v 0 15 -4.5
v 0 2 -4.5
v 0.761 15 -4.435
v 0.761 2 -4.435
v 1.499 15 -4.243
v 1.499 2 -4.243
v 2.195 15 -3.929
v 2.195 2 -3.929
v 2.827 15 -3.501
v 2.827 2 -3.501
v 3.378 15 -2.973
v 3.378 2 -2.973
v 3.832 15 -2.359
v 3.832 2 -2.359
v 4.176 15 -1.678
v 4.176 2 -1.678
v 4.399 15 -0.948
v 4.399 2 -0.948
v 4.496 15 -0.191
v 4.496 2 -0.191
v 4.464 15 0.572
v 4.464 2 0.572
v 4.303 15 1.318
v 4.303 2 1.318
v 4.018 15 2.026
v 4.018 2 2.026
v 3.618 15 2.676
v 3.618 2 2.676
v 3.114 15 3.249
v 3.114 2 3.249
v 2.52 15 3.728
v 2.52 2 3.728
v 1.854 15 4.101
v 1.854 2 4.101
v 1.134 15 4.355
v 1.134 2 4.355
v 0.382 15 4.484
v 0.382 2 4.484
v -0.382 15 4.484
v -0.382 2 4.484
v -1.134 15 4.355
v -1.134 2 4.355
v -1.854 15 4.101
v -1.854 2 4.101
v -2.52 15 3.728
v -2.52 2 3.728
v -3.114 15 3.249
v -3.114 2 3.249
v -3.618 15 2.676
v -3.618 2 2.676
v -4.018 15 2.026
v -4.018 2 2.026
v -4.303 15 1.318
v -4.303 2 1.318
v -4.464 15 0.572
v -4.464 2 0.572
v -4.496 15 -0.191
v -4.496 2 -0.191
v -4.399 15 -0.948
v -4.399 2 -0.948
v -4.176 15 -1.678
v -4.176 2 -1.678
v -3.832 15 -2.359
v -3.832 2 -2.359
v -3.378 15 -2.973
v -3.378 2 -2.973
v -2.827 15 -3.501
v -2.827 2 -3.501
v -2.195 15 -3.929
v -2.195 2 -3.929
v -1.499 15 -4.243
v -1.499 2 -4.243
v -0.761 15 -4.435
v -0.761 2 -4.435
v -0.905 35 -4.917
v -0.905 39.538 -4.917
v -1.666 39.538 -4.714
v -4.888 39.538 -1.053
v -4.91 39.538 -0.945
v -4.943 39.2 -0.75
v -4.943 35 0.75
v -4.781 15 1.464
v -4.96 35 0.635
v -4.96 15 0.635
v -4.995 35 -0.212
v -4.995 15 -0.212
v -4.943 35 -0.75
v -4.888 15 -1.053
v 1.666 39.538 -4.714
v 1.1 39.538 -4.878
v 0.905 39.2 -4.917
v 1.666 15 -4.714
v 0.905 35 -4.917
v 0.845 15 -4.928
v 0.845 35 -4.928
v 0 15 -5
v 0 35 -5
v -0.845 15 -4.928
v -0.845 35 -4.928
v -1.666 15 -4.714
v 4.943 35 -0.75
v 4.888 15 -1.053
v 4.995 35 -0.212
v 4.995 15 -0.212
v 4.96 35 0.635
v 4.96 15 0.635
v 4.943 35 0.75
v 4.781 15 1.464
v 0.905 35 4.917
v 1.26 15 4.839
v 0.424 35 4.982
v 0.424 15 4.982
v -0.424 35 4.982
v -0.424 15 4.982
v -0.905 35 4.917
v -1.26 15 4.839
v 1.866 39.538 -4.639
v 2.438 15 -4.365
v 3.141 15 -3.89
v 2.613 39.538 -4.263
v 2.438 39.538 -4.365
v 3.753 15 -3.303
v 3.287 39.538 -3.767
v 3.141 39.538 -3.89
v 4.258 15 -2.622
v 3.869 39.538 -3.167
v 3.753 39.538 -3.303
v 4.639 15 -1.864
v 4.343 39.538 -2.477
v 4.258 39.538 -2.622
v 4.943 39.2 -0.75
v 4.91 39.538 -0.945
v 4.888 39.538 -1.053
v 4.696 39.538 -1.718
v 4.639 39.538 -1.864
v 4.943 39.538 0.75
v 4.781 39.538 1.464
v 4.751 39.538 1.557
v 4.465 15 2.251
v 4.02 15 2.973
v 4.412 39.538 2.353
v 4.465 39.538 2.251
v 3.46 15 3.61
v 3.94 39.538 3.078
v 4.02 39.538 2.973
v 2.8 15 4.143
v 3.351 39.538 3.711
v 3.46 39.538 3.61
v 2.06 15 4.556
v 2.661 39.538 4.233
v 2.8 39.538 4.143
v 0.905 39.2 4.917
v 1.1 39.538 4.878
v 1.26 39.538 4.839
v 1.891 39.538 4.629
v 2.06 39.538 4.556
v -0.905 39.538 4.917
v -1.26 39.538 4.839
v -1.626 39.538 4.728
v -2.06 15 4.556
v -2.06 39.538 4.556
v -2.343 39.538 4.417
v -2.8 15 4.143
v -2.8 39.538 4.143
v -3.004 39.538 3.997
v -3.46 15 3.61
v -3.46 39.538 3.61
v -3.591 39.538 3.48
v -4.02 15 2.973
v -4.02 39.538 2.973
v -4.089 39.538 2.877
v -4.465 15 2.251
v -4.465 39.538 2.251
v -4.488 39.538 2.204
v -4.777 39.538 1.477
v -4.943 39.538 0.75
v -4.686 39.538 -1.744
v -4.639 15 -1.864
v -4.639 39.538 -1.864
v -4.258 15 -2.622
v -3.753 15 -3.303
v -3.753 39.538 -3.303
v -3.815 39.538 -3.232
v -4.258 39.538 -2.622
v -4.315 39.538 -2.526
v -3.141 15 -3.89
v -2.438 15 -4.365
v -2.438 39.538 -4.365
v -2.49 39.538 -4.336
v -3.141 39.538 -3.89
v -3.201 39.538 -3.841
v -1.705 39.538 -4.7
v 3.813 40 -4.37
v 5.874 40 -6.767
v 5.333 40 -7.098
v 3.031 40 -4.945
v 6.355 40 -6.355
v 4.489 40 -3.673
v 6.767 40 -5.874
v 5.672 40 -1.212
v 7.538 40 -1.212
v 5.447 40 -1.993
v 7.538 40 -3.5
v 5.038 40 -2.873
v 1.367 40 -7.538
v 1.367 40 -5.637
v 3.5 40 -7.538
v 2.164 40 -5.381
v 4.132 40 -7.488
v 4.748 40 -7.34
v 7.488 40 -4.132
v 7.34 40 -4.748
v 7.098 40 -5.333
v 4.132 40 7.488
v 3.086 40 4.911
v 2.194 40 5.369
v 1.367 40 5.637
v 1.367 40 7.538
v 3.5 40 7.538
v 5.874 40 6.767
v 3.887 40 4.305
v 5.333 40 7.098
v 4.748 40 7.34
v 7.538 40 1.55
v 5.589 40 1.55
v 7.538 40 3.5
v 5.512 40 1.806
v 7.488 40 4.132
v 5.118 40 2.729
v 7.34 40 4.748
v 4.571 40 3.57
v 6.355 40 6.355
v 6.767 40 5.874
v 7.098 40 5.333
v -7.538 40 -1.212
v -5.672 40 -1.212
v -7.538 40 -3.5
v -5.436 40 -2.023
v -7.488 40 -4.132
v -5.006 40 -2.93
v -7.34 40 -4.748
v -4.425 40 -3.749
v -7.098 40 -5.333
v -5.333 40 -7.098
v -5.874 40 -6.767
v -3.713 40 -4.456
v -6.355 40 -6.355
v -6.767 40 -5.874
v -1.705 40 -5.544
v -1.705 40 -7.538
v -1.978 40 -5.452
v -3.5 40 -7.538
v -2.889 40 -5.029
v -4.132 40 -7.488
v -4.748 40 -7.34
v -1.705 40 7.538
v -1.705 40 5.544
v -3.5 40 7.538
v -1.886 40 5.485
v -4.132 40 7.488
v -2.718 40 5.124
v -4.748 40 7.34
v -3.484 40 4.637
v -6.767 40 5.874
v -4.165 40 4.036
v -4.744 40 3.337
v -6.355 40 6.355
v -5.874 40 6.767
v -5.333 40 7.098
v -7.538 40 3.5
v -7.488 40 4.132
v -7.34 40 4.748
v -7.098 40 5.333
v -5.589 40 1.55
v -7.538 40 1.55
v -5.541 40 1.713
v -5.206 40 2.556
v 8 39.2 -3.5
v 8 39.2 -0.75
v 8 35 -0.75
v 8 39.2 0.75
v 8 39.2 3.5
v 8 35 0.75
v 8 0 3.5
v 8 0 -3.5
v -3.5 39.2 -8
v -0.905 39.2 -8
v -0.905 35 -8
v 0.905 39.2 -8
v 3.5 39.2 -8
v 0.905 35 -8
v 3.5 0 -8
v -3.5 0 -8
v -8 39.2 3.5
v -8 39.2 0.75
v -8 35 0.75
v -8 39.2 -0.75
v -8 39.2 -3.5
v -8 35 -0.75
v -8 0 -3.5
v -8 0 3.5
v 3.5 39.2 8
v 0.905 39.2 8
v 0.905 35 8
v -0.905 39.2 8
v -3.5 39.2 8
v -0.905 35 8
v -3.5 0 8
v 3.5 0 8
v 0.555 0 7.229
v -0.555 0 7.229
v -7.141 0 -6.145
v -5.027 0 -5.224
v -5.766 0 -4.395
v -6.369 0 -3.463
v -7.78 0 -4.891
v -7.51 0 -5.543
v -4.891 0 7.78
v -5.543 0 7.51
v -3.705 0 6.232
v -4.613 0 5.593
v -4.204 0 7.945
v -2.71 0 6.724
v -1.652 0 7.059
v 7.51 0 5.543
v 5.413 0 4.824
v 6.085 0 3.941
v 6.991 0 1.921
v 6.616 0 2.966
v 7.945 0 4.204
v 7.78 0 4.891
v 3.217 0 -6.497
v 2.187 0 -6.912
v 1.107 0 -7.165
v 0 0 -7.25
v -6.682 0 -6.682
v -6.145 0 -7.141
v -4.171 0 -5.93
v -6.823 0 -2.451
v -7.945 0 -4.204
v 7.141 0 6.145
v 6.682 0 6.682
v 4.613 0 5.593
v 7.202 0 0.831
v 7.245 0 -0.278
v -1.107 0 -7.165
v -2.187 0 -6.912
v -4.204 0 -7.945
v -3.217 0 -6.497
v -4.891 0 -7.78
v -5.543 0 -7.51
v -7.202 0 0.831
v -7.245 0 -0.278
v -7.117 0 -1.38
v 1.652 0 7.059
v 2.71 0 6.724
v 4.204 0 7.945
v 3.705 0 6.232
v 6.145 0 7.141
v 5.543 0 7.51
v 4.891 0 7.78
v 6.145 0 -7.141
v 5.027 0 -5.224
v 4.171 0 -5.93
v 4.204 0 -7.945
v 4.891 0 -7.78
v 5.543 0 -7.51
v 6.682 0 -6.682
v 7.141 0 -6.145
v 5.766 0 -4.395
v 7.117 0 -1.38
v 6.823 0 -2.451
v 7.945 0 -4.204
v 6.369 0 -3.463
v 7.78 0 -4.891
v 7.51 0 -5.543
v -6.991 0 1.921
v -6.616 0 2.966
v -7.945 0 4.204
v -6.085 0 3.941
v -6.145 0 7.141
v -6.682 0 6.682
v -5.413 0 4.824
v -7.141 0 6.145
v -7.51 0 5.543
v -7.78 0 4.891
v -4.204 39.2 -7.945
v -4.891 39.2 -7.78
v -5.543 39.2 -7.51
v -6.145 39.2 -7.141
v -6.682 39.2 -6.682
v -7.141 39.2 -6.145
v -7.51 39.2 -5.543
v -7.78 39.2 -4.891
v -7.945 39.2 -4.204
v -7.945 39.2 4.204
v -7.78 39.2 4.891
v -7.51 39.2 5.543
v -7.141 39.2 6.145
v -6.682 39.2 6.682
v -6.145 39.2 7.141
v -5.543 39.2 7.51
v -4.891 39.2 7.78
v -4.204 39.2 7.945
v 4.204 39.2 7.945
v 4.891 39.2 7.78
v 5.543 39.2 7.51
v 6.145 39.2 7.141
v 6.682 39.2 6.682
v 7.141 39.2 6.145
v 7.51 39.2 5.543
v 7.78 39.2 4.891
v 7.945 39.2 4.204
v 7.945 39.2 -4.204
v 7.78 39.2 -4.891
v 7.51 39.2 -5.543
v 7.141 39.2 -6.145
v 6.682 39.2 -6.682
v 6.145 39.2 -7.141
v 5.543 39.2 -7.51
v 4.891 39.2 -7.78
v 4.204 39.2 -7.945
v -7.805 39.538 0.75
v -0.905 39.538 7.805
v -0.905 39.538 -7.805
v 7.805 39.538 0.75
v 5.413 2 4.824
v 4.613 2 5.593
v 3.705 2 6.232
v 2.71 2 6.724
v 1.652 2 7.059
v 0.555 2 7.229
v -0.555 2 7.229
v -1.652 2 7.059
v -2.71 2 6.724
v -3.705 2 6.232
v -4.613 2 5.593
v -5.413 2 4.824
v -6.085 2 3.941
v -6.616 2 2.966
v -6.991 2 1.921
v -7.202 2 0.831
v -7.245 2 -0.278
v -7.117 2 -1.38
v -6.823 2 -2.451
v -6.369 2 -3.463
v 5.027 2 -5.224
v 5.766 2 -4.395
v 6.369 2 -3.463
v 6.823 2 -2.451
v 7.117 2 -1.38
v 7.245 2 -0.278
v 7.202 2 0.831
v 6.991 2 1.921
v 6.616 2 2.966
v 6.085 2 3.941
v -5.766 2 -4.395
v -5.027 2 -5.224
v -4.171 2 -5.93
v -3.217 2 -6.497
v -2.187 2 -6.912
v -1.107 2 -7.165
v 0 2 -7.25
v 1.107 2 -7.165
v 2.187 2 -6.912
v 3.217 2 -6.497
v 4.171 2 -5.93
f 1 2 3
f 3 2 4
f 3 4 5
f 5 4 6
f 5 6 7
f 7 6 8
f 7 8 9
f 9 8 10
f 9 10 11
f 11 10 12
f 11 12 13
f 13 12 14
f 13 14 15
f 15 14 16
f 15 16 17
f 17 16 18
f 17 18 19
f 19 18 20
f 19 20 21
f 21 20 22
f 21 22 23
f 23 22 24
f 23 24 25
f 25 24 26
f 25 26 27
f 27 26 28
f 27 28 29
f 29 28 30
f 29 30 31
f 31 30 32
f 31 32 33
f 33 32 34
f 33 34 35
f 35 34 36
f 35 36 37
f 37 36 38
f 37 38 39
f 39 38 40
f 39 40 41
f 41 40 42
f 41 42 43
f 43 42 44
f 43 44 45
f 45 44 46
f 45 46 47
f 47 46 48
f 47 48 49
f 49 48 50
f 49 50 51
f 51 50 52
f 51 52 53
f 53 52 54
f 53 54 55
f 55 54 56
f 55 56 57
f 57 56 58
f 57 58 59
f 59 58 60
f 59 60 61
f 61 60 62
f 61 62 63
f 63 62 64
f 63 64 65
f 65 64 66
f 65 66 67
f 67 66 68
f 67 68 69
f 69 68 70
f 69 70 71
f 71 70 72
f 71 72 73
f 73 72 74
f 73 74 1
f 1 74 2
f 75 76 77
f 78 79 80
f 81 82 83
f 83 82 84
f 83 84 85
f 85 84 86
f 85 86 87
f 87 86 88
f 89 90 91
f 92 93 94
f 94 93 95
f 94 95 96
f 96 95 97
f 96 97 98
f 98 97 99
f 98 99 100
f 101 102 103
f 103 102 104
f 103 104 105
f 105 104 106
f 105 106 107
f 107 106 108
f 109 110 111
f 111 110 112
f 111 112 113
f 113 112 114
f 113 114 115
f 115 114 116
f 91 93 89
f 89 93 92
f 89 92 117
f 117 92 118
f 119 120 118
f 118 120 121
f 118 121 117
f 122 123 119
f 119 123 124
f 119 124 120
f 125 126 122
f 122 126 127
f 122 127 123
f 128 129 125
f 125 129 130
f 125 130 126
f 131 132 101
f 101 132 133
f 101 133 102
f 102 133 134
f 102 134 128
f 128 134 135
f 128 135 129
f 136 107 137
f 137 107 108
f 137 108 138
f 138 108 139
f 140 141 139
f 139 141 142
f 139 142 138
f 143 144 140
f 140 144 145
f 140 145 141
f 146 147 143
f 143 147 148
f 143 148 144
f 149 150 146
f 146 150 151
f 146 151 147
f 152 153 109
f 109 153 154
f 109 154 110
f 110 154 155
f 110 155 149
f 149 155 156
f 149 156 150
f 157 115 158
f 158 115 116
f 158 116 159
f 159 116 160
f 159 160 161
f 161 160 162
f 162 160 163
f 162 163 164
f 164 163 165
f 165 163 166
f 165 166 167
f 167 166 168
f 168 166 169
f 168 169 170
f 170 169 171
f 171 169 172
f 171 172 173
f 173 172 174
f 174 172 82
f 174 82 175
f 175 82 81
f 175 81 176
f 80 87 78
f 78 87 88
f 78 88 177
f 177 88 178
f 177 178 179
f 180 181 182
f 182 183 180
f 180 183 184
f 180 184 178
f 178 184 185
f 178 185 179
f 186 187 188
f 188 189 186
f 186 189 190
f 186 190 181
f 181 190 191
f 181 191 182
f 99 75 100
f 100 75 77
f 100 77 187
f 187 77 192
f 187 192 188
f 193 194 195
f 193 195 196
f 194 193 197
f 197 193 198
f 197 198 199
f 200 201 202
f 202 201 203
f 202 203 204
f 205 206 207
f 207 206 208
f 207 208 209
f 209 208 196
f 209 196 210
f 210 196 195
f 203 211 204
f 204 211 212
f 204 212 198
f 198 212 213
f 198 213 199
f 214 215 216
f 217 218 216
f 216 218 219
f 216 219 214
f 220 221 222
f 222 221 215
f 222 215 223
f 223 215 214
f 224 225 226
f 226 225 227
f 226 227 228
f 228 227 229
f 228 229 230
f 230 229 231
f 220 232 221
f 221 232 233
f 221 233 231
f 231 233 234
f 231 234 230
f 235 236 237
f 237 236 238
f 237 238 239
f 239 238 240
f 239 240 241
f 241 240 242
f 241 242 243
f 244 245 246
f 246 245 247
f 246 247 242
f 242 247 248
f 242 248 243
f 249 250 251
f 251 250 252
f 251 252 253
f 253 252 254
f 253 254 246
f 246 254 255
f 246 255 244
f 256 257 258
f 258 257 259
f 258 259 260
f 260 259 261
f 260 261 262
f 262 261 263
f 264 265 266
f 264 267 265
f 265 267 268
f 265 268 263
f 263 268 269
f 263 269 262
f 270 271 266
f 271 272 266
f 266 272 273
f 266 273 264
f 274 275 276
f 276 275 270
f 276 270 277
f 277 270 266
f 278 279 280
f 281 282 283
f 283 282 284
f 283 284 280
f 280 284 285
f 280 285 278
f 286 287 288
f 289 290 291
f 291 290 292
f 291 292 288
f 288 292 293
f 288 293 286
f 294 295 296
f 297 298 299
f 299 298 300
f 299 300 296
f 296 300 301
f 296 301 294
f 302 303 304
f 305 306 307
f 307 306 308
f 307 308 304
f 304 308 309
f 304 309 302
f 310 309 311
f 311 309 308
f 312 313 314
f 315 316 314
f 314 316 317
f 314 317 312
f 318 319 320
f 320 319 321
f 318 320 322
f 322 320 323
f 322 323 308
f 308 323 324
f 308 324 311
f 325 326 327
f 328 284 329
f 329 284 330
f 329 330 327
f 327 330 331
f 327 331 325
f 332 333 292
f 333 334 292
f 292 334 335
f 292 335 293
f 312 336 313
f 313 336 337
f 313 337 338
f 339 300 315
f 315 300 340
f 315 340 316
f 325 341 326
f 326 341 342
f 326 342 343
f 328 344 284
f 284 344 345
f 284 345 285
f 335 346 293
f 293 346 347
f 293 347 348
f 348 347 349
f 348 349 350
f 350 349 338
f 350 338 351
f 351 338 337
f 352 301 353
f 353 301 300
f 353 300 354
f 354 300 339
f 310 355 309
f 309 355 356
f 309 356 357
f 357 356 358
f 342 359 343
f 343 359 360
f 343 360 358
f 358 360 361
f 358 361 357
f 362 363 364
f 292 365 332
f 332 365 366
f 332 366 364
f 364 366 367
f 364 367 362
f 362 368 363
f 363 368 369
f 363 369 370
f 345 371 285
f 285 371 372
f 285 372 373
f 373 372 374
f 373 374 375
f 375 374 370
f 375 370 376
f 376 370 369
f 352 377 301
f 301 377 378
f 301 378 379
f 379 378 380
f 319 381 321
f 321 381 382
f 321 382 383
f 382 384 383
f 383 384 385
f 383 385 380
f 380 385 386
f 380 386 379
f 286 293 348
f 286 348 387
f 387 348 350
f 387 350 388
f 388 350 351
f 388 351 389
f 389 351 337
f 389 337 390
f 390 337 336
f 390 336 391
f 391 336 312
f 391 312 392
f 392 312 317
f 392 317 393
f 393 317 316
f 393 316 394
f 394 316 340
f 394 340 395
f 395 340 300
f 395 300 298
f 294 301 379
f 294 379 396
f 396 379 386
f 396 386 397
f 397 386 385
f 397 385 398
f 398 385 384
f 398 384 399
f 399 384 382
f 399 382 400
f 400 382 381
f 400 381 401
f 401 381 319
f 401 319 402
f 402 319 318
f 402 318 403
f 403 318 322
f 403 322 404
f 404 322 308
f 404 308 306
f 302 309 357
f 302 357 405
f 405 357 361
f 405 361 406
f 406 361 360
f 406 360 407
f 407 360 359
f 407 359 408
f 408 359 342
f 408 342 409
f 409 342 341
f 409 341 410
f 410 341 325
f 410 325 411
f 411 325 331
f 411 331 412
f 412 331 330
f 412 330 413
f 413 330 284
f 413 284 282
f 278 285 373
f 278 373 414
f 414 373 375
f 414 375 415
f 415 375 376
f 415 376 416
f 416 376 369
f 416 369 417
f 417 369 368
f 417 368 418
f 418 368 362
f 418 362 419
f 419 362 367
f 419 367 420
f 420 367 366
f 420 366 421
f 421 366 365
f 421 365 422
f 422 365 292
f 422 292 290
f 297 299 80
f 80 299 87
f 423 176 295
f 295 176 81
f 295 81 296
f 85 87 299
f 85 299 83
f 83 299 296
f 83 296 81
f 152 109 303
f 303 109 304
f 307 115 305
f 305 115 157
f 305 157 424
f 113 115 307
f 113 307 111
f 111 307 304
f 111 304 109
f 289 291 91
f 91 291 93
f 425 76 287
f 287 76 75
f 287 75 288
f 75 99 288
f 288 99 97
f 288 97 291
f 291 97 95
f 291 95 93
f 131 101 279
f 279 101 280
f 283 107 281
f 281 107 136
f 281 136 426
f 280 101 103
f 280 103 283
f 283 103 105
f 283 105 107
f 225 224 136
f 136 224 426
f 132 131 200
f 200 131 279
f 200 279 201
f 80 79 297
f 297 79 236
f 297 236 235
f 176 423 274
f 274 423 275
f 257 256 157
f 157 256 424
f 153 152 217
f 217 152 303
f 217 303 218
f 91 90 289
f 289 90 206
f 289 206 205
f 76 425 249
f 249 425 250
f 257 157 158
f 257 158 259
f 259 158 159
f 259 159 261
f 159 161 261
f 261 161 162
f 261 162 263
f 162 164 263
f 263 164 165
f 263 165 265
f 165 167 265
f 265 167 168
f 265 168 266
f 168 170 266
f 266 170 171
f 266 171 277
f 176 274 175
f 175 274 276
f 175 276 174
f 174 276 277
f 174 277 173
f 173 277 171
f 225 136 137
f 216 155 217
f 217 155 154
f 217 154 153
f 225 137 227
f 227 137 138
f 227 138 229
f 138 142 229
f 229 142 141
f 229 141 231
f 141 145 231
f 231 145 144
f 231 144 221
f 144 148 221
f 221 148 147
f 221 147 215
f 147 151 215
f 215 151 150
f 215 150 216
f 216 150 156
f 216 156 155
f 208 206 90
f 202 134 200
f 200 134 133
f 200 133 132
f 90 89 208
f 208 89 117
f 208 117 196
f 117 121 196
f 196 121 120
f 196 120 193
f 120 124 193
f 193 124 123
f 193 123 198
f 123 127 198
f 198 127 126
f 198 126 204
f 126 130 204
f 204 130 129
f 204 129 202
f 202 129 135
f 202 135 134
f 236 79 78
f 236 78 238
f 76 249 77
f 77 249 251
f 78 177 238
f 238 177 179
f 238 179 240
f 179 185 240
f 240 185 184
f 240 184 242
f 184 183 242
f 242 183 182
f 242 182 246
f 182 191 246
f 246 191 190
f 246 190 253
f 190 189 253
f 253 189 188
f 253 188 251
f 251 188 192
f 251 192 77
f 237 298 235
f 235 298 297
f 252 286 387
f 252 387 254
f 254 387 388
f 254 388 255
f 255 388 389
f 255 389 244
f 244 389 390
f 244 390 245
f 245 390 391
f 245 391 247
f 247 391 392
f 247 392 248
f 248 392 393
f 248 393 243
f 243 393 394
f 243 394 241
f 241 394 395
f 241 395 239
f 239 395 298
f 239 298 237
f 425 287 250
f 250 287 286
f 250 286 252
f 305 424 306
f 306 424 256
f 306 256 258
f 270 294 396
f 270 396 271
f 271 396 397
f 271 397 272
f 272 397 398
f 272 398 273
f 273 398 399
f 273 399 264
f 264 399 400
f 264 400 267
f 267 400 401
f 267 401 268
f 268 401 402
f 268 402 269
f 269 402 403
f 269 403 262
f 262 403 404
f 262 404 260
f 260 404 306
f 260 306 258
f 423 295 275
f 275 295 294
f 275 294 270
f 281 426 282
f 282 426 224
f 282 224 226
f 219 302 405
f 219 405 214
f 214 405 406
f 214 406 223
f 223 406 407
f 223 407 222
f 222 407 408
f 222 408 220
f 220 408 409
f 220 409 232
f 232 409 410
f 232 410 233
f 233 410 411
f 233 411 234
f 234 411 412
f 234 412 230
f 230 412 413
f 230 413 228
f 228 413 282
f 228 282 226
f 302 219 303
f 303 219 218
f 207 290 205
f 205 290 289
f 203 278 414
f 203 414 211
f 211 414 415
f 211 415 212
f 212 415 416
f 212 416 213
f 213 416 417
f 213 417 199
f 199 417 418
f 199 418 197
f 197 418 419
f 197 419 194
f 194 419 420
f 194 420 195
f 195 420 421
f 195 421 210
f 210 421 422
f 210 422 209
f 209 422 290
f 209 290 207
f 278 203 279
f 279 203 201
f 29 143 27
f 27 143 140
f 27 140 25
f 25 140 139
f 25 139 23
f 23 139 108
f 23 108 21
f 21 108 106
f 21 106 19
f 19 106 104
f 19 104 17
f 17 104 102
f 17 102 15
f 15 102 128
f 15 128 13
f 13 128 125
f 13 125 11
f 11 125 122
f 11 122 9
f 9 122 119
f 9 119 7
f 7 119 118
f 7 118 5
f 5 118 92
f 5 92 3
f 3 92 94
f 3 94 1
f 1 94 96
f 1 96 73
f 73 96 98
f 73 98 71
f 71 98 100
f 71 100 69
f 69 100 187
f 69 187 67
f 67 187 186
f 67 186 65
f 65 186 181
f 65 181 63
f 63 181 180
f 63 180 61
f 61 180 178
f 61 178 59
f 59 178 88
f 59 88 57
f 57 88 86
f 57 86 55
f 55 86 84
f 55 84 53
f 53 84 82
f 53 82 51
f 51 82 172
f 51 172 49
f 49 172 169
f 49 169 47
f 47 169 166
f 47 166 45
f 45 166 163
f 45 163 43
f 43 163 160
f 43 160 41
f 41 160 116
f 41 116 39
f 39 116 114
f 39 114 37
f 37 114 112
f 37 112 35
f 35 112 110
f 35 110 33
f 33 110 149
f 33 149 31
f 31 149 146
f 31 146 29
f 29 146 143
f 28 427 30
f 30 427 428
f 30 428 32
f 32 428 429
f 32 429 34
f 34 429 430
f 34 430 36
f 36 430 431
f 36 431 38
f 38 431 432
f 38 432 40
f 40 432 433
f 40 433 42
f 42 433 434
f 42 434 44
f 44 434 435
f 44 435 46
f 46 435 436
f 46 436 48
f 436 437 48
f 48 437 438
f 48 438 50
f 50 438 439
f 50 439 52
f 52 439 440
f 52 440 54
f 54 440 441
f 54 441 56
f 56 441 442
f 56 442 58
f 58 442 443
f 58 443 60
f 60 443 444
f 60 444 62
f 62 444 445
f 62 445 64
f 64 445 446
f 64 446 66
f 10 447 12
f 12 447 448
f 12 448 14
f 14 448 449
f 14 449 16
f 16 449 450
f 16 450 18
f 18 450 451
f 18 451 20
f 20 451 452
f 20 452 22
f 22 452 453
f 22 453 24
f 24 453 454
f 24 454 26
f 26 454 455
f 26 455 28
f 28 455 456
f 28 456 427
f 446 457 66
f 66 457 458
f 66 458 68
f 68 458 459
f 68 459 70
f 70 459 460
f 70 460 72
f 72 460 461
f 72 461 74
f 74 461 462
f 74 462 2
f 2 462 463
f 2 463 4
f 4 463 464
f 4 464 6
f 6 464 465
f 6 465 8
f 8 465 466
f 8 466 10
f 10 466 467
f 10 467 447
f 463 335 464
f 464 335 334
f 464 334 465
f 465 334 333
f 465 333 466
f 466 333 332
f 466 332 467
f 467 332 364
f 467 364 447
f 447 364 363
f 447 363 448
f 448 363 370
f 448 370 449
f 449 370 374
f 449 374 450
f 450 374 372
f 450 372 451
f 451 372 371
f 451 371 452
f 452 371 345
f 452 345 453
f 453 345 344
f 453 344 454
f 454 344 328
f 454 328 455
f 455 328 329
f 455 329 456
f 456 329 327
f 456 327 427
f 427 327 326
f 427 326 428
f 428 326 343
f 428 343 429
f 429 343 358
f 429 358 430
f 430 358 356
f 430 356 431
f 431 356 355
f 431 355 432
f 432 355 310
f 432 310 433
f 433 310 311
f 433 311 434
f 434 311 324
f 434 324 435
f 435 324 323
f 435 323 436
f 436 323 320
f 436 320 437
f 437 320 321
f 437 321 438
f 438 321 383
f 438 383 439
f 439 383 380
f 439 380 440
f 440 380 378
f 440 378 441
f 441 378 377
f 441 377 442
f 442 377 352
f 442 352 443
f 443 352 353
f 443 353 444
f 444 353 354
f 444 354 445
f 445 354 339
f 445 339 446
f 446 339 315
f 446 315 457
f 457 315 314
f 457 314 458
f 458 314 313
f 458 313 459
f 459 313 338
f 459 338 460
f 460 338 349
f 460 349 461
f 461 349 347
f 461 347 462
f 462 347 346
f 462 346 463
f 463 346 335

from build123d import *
from OCP.BRepFilletAPI import BRepFilletAPI_MakeChamfer

# Parameters (mm, degrees)
SKETCH1_W           = 16
SKETCH1_H           = 16
SKETCH1_R           = 5
BOSS_EXTRUDE1_DEPTH = 40
FILLET1_R           = 4.5
CUT_EXTRUDE1_START  = -5
CUT_EXTRUDE1_DEPTH  = 5
CHAMFER1_SIZE       = 0.8
CHAMFER1_SIZE2      = 0.461880215
CHAMFER2_SIZE       = 0.8
CHAMFER2_SIZE2      = 0.461880215
SKETCH3_R           = 5
SKETCH3_R_2         = 4.5
BOSS_EXTRUDE2_DEPTH = 15
SKETCH4_R           = 7.25
CUT_EXTRUDE2_DEPTH  = 2


with BuildPart() as part:
    # Sketch1 → Boss-Extrude1 (new body)
    with BuildSketch(Plane(origin=(0, 0, 0), x_dir=(1, 0, 0), z_dir=(0, 1, 0))):
        Rectangle(SKETCH1_W, SKETCH1_H)
        with Locations(Location((0, 0, 0), (0, 0, 270))):
            Circle(SKETCH1_R, mode=Mode.SUBTRACT)
    extrude(amount=BOSS_EXTRUDE1_DEPTH)

    # Fillet1
    fillet1_edges = [part.edges().sort_by_distance(p)[0] for p in [
        (8, 20, 8),
        (-8, 20, 8),
        (-8, 20, -8),
        (8, 20, -8),
    ]]
    fillet(fillet1_edges, radius=FILLET1_R)

    # Sketch2 → Cut-Extrude1 (cut)
    with BuildSketch(Plane(origin=(0, 40, 0), x_dir=(1, 0, 0), z_dir=(0, 1, 0)).offset(CUT_EXTRUDE1_START)):
        with BuildLine():
            ThreePointArc((5, 0), (4.985837438, -0.376065209), (4.943429983, -0.75))
            Line((4.943429983, -0.75), (8, -0.75))
            Line((8, -0.75), (8, 0.75))
            Line((8, 0.75), (4.943429983, 0.75))
            ThreePointArc((4.943429983, 0.75), (4.985837438, 0.376065209), (5, 0))
        make_face()
        with BuildLine():
            Line((-0.904749438, 8), (-0.904749438, 4.917461586))
            ThreePointArc((-0.904749438, 4.917461586), (0, 5), (0.904749438, 4.917461586))
            Line((0.904749438, 4.917461586), (0.904749438, 8))
            Line((0.904749438, 8), (-0.904749438, 8))
        make_face()
        with BuildLine():
            ThreePointArc((0.904749438, -4.917461586), (0, -5), (-0.904749438, -4.917461586))
            Line((-0.904749438, -4.917461586), (-0.904749438, -8))
            Line((-0.904749438, -8), (0.904749438, -8))
            Line((0.904749438, -8), (0.904749438, -4.917461586))
        make_face()
        with BuildLine():
            Line((-8, 0.75), (-8, -0.75))
            Line((-8, -0.75), (-4.943429983, -0.75))
            ThreePointArc((-4.943429983, -0.75), (-5, 0), (-4.943429983, 0.75))
            Line((-4.943429983, 0.75), (-8, 0.75))
        make_face()
    extrude(amount=CUT_EXTRUDE1_DEPTH, mode=Mode.SUBTRACT)

    # Chamfer1: one chamfer whose edges measure the first distance from different faces: ONE call of the kernel's chamfer builder (chamfer() names one face for all edges)
    chamfer1_edges_1 = [part.edges().sort_by_distance(p)[0] for p in [
        (6.471714992, 40, -0.75),
    ]]
    chamfer1_side_1 = [part.faces().sort_by_distance(p)[0] for p in [
        (6.471714992, 37.5, -0.75),
    ]]
    chamfer1_edges_2 = [part.edges().sort_by_distance(p)[0] for p in [
        (6.471714992, 40, 0.75),
    ]]
    chamfer1_side_2 = [part.faces().sort_by_distance(p)[0] for p in [
        (4.797663916, 40, 4.721192893),
    ]]
    chamfer1_edges_3 = [part.edges().sort_by_distance(p)[0] for p in [
        (0.904749438, 40, -6.458730793),
    ]]
    chamfer1_side_3 = [part.faces().sort_by_distance(p)[0] for p in [
        (0.904749438, 37.5, -6.458730793),
    ]]
    chamfer1_edges_4 = [part.edges().sort_by_distance(p)[0] for p in [
        (-0.904749438, 40, -6.458730793),
    ]]
    chamfer1_side_4 = [part.faces().sort_by_distance(p)[0] for p in [
        (-4.797663916, 40, -4.721192893),
    ]]
    chamfer1_edges_5 = [part.edges().sort_by_distance(p)[0] for p in [
        (0.904749438, 40, 6.458730793),
    ]]
    chamfer1_side_5 = [part.faces().sort_by_distance(p)[0] for p in [
        (0.904749438, 37.5, 6.458730793),
    ]]
    chamfer1_edges_6 = [part.edges().sort_by_distance(p)[0] for p in [
        (-0.904749438, 40, 6.458730793),
        (-6.471714992, 40, 0.75),
    ]]
    chamfer1_side_6 = [part.faces().sort_by_distance(p)[0] for p in [
        (-4.797663916, 40, 4.721192893),
    ]]
    chamfer1_edges_7 = [part.edges().sort_by_distance(p)[0] for p in [
        (-6.471714992, 40, -0.75),
    ]]
    chamfer1_side_7 = [part.faces().sort_by_distance(p)[0] for p in [
        (-6.471714992, 37.5, -0.75),
    ]]
    chamfer1 = BRepFilletAPI_MakeChamfer(part.part.solid().wrapped)
    for e in chamfer1_edges_1:
        chamfer1.Add(CHAMFER1_SIZE, CHAMFER1_SIZE2, e.wrapped, chamfer1_side_1[0].wrapped)  # the first distance lies on this face
    for e in chamfer1_edges_2:
        chamfer1.Add(CHAMFER1_SIZE, CHAMFER1_SIZE2, e.wrapped, chamfer1_side_2[0].wrapped)  # the first distance lies on this face
    for e in chamfer1_edges_3:
        chamfer1.Add(CHAMFER1_SIZE, CHAMFER1_SIZE2, e.wrapped, chamfer1_side_3[0].wrapped)  # the first distance lies on this face
    for e in chamfer1_edges_4:
        chamfer1.Add(CHAMFER1_SIZE, CHAMFER1_SIZE2, e.wrapped, chamfer1_side_4[0].wrapped)  # the first distance lies on this face
    for e in chamfer1_edges_5:
        chamfer1.Add(CHAMFER1_SIZE, CHAMFER1_SIZE2, e.wrapped, chamfer1_side_5[0].wrapped)  # the first distance lies on this face
    for e in chamfer1_edges_6:
        chamfer1.Add(CHAMFER1_SIZE, CHAMFER1_SIZE2, e.wrapped, chamfer1_side_6[0].wrapped)  # the first distance lies on this face
    for e in chamfer1_edges_7:
        chamfer1.Add(CHAMFER1_SIZE, CHAMFER1_SIZE2, e.wrapped, chamfer1_side_7[0].wrapped)  # the first distance lies on this face
    add(Compound.cast(chamfer1.Shape()), mode=Mode.REPLACE)

    # Chamfer2: one chamfer whose edges measure the first distance from different faces: ONE call of the kernel's chamfer builder (chamfer() names one face for all edges)
    chamfer2_edges_1 = [part.edges().sort_by_distance(p)[0] for p in [
        (-3.592924063, 40, 3.477196669),
    ]]
    chamfer2_side_1 = [part.faces().sort_by_distance(p)[0] for p in [
        (-4.956967709, 40, 4.876915228),
    ]]
    chamfer2_edges_2 = [part.edges().sort_by_distance(p)[0] for p in [
        (3.467104871, 40, 3.602663433),
    ]]
    chamfer2_side_2 = [part.faces().sort_by_distance(p)[0] for p in [
        (4.836216734, 40, 4.929925488),
    ]]
    chamfer2_edges_3 = [part.edges().sort_by_distance(p)[0] for p in [
        (3.59170795, 40, -3.478452817),
    ]]
    chamfer2_side_3 = [part.faces().sort_by_distance(p)[0] for p in [
        (4.888861893, 40, -4.810636969),
    ]]
    chamfer2_edges_4 = [part.edges().sort_by_distance(p)[0] for p in [
        (-3.713035057, 40, -3.348637136),
    ]]
    chamfer2_side_4 = [part.faces().sort_by_distance(p)[0] for p in [
        (-5.007269345, 40, -4.755258355),
    ]]
    chamfer2_edges_5 = [part.edges().sort_by_distance(p)[0] for p in [
        (-2.602374719, 40, -8),
        (2.433314827, 40, -8),
    ]]
    chamfer2_side_5 = [part.faces().sort_by_distance(p)[0] for p in [
        (7.6955e-05, 19.387827312, -8),
    ]]
    chamfer2_edges_6 = [part.edges().sort_by_distance(p)[0] for p in [
        (-8, 40, -2.355940108),
        (-8, 40, 2.525),
    ]]
    chamfer2_side_6 = [part.faces().sort_by_distance(p)[0] for p in [
        (-8, 19.4908238, -7.6518e-05),
    ]]
    chamfer2_edges_7 = [part.edges().sort_by_distance(p)[0] for p in [
        (-6.681980515, 40, -6.681980515),
    ]]
    chamfer2_side_7 = [part.faces().sort_by_distance(p)[0] for p in [
        (-6.681980515, 20, -6.681980515),
    ]]
    chamfer2_edges_8 = [part.edges().sort_by_distance(p)[0] for p in [
        (-2.602374719, 40, 8),
        (2.433314827, 40, 8),
    ]]
    chamfer2_side_8 = [part.faces().sort_by_distance(p)[0] for p in [
        (7.6955e-05, 19.387827312, 8),
    ]]
    chamfer2_edges_9 = [part.edges().sort_by_distance(p)[0] for p in [
        (-6.681980515, 40, 6.681980515),
    ]]
    chamfer2_side_9 = [part.faces().sort_by_distance(p)[0] for p in [
        (-6.681980515, 20, 6.681980515),
    ]]
    chamfer2_edges_10 = [part.edges().sort_by_distance(p)[0] for p in [
        (8, 40, 2.525),
        (8, 40, -2.355940108),
    ]]
    chamfer2_side_10 = [part.faces().sort_by_distance(p)[0] for p in [
        (8, 19.4908238, -7.6518e-05),
    ]]
    chamfer2_edges_11 = [part.edges().sort_by_distance(p)[0] for p in [
        (6.681980515, 40, 6.681980515),
    ]]
    chamfer2_side_11 = [part.faces().sort_by_distance(p)[0] for p in [
        (6.681980515, 20, 6.681980515),
    ]]
    chamfer2_edges_12 = [part.edges().sort_by_distance(p)[0] for p in [
        (6.681980515, 40, -6.681980515),
    ]]
    chamfer2_side_12 = [part.faces().sort_by_distance(p)[0] for p in [
        (6.681980515, 20, -6.681980515),
    ]]
    chamfer2 = BRepFilletAPI_MakeChamfer(part.part.solid().wrapped)
    for e in chamfer2_edges_1:
        chamfer2.Add(CHAMFER2_SIZE, CHAMFER2_SIZE2, e.wrapped, chamfer2_side_1[0].wrapped)  # the first distance lies on this face
    for e in chamfer2_edges_2:
        chamfer2.Add(CHAMFER2_SIZE, CHAMFER2_SIZE2, e.wrapped, chamfer2_side_2[0].wrapped)  # the first distance lies on this face
    for e in chamfer2_edges_3:
        chamfer2.Add(CHAMFER2_SIZE, CHAMFER2_SIZE2, e.wrapped, chamfer2_side_3[0].wrapped)  # the first distance lies on this face
    for e in chamfer2_edges_4:
        chamfer2.Add(CHAMFER2_SIZE, CHAMFER2_SIZE2, e.wrapped, chamfer2_side_4[0].wrapped)  # the first distance lies on this face
    for e in chamfer2_edges_5:
        chamfer2.Add(CHAMFER2_SIZE, CHAMFER2_SIZE2, e.wrapped, chamfer2_side_5[0].wrapped)  # the first distance lies on this face
    for e in chamfer2_edges_6:
        chamfer2.Add(CHAMFER2_SIZE, CHAMFER2_SIZE2, e.wrapped, chamfer2_side_6[0].wrapped)  # the first distance lies on this face
    for e in chamfer2_edges_7:
        chamfer2.Add(CHAMFER2_SIZE, CHAMFER2_SIZE2, e.wrapped, chamfer2_side_7[0].wrapped)  # the first distance lies on this face
    for e in chamfer2_edges_8:
        chamfer2.Add(CHAMFER2_SIZE, CHAMFER2_SIZE2, e.wrapped, chamfer2_side_8[0].wrapped)  # the first distance lies on this face
    for e in chamfer2_edges_9:
        chamfer2.Add(CHAMFER2_SIZE, CHAMFER2_SIZE2, e.wrapped, chamfer2_side_9[0].wrapped)  # the first distance lies on this face
    for e in chamfer2_edges_10:
        chamfer2.Add(CHAMFER2_SIZE, CHAMFER2_SIZE2, e.wrapped, chamfer2_side_10[0].wrapped)  # the first distance lies on this face
    for e in chamfer2_edges_11:
        chamfer2.Add(CHAMFER2_SIZE, CHAMFER2_SIZE2, e.wrapped, chamfer2_side_11[0].wrapped)  # the first distance lies on this face
    for e in chamfer2_edges_12:
        chamfer2.Add(CHAMFER2_SIZE, CHAMFER2_SIZE2, e.wrapped, chamfer2_side_12[0].wrapped)  # the first distance lies on this face
    add(Compound.cast(chamfer2.Shape()), mode=Mode.REPLACE)

    # Sketch3 → Boss-Extrude2 (add)
    with BuildSketch(Plane.XZ):
        with Locations(Location((0, 0, 0), (0, 0, 270))):
            Circle(SKETCH3_R)
        with Locations(Location((0, 0, 0), (0, 0, 270))):
            Circle(SKETCH3_R_2, mode=Mode.SUBTRACT)
    extrude(amount=-BOSS_EXTRUDE2_DEPTH)

    # Sketch4 → Cut-Extrude2 (cut)
    with BuildSketch(Plane.XZ):
        with Locations(Location((0, 0, 0), (0, 0, 270))):
            Circle(SKETCH4_R)
    extrude(amount=-CUT_EXTRUDE2_DEPTH, mode=Mode.SUBTRACT)


solid = part.part
